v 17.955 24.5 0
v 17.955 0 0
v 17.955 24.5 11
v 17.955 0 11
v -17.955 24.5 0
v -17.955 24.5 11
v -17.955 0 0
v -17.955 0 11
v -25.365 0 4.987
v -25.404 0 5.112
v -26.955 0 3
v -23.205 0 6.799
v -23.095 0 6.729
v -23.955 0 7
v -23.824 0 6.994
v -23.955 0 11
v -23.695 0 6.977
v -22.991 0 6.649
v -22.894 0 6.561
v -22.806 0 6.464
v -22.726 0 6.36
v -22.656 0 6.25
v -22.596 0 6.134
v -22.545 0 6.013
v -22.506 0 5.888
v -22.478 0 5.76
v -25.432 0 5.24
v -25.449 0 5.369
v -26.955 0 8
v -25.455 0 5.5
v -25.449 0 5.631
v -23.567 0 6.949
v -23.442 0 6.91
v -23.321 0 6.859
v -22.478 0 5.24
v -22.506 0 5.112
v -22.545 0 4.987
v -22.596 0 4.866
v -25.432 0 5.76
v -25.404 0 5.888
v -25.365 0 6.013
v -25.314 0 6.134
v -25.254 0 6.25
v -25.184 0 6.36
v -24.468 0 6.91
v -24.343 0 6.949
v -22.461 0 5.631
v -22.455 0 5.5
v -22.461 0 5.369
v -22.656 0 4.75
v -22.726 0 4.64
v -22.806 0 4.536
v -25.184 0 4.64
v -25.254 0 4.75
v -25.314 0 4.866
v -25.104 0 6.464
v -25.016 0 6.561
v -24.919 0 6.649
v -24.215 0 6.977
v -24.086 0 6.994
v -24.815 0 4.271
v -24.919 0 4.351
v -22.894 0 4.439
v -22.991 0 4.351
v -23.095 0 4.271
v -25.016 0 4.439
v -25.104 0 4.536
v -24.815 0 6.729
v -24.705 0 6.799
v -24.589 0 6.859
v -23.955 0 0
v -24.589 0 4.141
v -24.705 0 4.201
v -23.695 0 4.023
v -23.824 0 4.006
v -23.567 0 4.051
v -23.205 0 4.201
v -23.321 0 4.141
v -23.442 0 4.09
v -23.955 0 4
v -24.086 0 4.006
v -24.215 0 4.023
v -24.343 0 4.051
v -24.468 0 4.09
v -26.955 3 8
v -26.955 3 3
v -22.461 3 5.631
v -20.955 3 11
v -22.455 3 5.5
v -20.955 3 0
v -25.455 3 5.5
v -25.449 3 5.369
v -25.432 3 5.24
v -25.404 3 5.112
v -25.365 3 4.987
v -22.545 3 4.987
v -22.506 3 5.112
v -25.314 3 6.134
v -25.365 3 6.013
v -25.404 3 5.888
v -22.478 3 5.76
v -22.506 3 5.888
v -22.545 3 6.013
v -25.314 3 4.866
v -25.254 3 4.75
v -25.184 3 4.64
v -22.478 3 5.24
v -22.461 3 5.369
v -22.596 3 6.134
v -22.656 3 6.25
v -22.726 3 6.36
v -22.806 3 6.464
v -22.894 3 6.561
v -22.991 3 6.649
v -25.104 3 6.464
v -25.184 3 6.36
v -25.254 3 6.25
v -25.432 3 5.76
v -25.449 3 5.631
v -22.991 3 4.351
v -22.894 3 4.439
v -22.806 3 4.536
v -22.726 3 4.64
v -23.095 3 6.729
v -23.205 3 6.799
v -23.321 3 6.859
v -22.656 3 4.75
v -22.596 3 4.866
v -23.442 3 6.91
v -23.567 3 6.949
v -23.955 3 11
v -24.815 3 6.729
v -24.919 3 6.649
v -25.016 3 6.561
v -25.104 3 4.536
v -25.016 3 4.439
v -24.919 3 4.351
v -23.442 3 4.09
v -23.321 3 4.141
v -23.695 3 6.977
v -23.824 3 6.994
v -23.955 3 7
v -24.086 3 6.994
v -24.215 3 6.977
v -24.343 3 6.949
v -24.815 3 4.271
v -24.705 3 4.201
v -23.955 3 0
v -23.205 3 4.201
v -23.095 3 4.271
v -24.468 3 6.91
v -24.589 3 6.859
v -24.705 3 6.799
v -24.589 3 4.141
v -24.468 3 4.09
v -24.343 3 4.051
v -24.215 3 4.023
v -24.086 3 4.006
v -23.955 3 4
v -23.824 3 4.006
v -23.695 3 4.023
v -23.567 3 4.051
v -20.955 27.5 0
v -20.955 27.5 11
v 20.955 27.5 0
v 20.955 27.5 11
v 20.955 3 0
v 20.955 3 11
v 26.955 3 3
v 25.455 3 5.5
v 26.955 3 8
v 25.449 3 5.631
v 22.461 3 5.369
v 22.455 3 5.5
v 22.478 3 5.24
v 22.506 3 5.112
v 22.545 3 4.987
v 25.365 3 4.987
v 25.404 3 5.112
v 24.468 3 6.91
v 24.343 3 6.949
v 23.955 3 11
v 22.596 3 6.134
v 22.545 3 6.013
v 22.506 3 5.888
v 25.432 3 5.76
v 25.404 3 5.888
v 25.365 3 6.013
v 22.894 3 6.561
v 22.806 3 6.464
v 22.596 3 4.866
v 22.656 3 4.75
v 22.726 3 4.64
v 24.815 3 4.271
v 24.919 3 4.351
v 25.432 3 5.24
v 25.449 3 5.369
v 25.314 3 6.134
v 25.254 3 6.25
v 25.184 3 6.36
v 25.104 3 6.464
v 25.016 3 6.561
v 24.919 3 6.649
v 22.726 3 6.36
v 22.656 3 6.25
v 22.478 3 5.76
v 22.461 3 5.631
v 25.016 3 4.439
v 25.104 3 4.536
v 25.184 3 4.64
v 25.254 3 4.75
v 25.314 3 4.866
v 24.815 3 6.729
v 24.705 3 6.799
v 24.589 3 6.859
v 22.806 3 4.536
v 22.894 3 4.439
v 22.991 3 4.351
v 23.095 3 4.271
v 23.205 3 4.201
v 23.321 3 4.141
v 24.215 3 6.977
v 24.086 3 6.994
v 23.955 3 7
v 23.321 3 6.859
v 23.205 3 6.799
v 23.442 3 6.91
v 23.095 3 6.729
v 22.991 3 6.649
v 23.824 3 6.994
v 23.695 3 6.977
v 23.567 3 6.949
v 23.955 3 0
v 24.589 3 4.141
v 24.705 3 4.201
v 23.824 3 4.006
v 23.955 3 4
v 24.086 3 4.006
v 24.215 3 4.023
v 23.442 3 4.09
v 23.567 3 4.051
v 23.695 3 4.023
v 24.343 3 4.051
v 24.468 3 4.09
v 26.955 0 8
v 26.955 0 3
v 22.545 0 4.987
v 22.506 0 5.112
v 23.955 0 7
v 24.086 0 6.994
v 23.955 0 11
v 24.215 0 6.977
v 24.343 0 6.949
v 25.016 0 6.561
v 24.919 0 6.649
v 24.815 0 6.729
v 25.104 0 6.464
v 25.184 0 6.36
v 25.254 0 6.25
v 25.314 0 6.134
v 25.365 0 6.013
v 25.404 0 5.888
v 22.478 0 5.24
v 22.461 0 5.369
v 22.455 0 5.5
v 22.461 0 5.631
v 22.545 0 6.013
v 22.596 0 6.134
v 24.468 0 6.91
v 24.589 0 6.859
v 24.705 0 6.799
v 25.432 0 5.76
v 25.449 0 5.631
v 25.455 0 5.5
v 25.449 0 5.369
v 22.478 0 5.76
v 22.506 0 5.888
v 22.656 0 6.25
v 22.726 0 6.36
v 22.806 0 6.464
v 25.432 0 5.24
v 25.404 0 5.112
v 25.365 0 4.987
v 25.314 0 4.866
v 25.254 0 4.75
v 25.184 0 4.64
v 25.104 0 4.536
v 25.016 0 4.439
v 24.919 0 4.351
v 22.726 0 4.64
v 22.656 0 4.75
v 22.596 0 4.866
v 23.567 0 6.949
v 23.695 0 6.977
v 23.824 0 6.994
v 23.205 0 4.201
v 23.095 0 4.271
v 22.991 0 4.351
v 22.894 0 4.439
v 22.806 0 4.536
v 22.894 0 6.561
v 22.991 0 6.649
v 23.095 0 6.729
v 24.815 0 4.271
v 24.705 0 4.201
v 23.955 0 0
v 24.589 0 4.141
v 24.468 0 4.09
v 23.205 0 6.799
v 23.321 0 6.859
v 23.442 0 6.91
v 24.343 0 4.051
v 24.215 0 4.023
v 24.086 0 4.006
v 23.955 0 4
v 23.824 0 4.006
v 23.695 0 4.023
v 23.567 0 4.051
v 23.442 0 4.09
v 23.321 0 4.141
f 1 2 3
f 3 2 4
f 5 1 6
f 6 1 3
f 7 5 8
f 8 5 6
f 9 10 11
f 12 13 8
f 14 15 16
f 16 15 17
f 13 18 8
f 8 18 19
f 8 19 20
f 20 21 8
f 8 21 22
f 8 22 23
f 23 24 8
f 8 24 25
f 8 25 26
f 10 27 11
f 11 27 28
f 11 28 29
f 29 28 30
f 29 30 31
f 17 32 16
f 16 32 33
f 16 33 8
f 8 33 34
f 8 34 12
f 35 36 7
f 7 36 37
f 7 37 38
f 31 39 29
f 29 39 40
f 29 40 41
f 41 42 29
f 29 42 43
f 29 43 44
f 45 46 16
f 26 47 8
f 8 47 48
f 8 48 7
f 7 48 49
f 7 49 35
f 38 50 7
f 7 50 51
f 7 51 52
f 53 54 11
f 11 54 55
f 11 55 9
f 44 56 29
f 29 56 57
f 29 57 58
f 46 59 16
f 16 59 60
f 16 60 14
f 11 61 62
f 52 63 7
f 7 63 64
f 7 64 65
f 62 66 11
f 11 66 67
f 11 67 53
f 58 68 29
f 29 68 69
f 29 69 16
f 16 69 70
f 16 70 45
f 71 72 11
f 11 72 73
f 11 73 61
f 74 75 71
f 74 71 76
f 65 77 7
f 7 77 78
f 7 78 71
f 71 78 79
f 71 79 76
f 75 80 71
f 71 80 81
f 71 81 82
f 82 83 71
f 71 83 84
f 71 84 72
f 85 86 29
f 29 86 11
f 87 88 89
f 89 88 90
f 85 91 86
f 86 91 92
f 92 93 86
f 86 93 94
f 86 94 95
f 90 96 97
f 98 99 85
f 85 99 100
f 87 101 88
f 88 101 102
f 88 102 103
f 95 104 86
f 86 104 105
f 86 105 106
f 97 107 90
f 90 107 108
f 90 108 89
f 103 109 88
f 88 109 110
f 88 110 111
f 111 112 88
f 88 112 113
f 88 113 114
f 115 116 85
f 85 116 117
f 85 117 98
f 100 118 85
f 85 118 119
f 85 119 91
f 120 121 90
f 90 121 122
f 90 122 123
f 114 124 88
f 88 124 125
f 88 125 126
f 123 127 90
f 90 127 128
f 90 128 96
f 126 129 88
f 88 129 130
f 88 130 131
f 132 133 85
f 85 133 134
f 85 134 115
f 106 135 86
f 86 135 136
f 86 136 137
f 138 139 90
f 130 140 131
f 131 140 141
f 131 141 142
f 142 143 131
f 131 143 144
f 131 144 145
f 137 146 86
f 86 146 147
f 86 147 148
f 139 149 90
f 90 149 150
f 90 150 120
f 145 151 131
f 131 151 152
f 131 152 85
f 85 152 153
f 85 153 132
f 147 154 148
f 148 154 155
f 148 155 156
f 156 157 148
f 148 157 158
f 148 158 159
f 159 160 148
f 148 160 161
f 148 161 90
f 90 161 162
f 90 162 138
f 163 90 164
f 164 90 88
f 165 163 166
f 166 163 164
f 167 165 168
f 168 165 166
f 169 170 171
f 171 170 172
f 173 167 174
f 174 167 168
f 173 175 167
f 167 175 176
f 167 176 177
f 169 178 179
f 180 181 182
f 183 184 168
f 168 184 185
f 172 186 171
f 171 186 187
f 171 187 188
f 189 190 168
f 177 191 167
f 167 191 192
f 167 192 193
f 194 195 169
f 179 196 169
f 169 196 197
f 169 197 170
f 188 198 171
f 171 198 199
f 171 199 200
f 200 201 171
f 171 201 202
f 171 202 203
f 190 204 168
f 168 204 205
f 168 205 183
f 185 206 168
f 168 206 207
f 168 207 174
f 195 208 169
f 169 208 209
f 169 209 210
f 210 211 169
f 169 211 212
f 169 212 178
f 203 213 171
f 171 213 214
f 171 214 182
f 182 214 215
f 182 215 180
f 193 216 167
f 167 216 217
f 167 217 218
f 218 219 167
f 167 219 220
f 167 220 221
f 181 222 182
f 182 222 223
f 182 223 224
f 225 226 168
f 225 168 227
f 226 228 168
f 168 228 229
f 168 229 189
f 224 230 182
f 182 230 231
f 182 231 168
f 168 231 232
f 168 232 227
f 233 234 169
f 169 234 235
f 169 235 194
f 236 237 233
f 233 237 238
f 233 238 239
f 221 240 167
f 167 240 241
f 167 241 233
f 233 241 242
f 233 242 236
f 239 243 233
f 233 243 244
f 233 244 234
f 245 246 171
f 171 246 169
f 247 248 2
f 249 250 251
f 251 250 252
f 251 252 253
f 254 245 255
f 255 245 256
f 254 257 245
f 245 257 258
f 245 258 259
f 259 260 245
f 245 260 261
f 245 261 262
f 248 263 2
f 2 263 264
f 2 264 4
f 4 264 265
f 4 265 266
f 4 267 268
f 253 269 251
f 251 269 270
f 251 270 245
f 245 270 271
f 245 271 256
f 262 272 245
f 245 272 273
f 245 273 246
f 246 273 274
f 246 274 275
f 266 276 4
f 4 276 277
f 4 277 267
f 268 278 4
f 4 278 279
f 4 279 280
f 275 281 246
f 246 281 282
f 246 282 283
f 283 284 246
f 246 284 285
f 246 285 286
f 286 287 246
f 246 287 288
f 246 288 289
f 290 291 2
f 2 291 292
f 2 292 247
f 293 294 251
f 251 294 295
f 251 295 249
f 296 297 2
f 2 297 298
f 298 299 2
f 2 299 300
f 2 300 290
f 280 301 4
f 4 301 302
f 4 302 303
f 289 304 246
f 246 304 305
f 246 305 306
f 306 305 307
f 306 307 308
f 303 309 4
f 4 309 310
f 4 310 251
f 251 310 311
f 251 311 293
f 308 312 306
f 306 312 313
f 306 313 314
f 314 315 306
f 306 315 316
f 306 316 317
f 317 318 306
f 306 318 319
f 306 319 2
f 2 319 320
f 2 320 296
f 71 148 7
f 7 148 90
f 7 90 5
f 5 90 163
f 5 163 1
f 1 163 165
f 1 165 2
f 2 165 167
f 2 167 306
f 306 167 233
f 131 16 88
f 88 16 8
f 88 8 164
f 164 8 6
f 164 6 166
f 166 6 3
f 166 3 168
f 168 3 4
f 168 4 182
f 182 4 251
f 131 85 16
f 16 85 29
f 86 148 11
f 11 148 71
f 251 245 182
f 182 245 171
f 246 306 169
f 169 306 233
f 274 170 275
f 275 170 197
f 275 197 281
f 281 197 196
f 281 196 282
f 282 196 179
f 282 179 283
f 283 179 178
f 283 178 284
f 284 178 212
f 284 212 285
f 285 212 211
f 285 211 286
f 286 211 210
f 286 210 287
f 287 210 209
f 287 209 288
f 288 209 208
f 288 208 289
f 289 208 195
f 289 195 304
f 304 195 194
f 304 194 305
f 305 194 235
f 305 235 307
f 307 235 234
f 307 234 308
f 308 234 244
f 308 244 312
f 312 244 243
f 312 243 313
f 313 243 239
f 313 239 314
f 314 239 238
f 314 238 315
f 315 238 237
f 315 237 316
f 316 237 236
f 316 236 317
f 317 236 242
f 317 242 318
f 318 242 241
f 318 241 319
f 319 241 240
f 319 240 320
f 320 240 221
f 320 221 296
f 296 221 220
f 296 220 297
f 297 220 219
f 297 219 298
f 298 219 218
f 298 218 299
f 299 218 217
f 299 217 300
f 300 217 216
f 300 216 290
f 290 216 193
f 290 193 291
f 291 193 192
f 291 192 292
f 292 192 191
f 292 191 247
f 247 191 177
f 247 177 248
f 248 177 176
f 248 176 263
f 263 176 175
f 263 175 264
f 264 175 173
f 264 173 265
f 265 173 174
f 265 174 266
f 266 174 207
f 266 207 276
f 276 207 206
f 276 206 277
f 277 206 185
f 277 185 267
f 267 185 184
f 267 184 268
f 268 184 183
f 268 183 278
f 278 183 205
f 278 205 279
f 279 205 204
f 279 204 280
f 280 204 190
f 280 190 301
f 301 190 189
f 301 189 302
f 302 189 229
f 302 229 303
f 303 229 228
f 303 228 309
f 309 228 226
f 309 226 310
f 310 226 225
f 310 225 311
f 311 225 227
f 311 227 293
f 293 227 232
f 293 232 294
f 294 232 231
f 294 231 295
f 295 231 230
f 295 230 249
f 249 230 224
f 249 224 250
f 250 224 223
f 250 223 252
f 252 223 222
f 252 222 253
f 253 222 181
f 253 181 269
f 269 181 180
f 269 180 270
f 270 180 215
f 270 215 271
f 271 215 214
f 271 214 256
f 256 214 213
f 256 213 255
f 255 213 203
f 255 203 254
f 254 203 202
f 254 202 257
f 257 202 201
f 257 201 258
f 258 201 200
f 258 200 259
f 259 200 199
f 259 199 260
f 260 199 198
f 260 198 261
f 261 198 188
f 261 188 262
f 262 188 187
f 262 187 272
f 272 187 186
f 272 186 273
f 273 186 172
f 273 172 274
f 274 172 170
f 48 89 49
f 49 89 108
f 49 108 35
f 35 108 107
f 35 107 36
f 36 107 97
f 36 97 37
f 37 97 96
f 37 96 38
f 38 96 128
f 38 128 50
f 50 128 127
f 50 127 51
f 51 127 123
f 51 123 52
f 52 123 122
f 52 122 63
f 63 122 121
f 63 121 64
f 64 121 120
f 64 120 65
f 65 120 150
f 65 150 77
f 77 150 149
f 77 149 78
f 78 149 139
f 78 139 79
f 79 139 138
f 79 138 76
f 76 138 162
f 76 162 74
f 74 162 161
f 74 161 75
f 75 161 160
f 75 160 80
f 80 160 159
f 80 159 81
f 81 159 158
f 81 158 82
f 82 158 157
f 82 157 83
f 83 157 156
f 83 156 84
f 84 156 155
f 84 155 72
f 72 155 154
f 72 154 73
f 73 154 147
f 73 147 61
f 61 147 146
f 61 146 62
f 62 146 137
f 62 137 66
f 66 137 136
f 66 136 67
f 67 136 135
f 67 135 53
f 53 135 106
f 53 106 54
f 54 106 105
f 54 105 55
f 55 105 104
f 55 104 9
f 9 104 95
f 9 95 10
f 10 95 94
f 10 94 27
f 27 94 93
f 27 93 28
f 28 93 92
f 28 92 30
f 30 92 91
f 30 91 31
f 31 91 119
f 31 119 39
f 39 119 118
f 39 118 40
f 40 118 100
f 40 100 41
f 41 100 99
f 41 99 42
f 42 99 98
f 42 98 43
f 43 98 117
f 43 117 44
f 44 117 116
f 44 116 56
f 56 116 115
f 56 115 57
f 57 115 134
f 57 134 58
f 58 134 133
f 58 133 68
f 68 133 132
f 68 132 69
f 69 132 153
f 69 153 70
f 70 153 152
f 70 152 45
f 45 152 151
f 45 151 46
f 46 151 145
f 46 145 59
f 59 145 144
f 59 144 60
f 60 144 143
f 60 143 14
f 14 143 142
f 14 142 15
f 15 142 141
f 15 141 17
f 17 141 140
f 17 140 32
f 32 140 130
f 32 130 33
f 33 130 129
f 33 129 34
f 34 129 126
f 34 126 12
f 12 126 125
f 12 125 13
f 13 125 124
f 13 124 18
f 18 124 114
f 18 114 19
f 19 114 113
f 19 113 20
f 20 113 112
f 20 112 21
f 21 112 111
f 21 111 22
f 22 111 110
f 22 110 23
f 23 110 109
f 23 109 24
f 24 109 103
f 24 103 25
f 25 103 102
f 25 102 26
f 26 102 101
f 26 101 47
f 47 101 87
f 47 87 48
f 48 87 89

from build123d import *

# Parameters (mm, degrees)
BOSS_EXTRUDE1_DEPTH = 11
CHAMFER1_SIZE       = 3
SKETCH2_R           = 1.5
CUT_EXTRUDE1_DEPTH  = 39.050256569


with BuildPart() as part:
    # Sketch1 → Boss-Extrude1 (new body)
    with BuildSketch(Plane.XY):
        Polygon((-26.955, 0), (-17.955, 0), (-17.955, 24.5), (17.955, 24.5), (17.955, 0), (26.955, 0), (26.955, 3), (20.955, 3), (20.955, 27.5), (-20.955, 27.5), (-20.955, 3), (-26.955, 3), align=None)
    extrude(amount=BOSS_EXTRUDE1_DEPTH)

    # Chamfer1
    chamfer1_edges = [part.edges().sort_by_distance(p)[0] for p in [
        (-26.955, 1.5, 0),
        (26.955, 1.5, 0),
        (26.955, 1.5, 11),
        (-26.955, 1.5, 11),
    ]]
    chamfer(chamfer1_edges, length=CHAMFER1_SIZE)

    # Sketch2 → Cut-Extrude1 (cut, through all)
    with BuildSketch(Plane(origin=(0, 3, 0), x_dir=(1, 0, 0), z_dir=(0, 1, 0))):
        with Locations(Location((-23.955, -5.5, 0), (0, 0, 180))):
            Circle(SKETCH2_R)
        with Locations((23.955, -5.5)):
            Circle(SKETCH2_R)
    extrude(amount=-CUT_EXTRUDE1_DEPTH, mode=Mode.SUBTRACT)


solid = part.part
